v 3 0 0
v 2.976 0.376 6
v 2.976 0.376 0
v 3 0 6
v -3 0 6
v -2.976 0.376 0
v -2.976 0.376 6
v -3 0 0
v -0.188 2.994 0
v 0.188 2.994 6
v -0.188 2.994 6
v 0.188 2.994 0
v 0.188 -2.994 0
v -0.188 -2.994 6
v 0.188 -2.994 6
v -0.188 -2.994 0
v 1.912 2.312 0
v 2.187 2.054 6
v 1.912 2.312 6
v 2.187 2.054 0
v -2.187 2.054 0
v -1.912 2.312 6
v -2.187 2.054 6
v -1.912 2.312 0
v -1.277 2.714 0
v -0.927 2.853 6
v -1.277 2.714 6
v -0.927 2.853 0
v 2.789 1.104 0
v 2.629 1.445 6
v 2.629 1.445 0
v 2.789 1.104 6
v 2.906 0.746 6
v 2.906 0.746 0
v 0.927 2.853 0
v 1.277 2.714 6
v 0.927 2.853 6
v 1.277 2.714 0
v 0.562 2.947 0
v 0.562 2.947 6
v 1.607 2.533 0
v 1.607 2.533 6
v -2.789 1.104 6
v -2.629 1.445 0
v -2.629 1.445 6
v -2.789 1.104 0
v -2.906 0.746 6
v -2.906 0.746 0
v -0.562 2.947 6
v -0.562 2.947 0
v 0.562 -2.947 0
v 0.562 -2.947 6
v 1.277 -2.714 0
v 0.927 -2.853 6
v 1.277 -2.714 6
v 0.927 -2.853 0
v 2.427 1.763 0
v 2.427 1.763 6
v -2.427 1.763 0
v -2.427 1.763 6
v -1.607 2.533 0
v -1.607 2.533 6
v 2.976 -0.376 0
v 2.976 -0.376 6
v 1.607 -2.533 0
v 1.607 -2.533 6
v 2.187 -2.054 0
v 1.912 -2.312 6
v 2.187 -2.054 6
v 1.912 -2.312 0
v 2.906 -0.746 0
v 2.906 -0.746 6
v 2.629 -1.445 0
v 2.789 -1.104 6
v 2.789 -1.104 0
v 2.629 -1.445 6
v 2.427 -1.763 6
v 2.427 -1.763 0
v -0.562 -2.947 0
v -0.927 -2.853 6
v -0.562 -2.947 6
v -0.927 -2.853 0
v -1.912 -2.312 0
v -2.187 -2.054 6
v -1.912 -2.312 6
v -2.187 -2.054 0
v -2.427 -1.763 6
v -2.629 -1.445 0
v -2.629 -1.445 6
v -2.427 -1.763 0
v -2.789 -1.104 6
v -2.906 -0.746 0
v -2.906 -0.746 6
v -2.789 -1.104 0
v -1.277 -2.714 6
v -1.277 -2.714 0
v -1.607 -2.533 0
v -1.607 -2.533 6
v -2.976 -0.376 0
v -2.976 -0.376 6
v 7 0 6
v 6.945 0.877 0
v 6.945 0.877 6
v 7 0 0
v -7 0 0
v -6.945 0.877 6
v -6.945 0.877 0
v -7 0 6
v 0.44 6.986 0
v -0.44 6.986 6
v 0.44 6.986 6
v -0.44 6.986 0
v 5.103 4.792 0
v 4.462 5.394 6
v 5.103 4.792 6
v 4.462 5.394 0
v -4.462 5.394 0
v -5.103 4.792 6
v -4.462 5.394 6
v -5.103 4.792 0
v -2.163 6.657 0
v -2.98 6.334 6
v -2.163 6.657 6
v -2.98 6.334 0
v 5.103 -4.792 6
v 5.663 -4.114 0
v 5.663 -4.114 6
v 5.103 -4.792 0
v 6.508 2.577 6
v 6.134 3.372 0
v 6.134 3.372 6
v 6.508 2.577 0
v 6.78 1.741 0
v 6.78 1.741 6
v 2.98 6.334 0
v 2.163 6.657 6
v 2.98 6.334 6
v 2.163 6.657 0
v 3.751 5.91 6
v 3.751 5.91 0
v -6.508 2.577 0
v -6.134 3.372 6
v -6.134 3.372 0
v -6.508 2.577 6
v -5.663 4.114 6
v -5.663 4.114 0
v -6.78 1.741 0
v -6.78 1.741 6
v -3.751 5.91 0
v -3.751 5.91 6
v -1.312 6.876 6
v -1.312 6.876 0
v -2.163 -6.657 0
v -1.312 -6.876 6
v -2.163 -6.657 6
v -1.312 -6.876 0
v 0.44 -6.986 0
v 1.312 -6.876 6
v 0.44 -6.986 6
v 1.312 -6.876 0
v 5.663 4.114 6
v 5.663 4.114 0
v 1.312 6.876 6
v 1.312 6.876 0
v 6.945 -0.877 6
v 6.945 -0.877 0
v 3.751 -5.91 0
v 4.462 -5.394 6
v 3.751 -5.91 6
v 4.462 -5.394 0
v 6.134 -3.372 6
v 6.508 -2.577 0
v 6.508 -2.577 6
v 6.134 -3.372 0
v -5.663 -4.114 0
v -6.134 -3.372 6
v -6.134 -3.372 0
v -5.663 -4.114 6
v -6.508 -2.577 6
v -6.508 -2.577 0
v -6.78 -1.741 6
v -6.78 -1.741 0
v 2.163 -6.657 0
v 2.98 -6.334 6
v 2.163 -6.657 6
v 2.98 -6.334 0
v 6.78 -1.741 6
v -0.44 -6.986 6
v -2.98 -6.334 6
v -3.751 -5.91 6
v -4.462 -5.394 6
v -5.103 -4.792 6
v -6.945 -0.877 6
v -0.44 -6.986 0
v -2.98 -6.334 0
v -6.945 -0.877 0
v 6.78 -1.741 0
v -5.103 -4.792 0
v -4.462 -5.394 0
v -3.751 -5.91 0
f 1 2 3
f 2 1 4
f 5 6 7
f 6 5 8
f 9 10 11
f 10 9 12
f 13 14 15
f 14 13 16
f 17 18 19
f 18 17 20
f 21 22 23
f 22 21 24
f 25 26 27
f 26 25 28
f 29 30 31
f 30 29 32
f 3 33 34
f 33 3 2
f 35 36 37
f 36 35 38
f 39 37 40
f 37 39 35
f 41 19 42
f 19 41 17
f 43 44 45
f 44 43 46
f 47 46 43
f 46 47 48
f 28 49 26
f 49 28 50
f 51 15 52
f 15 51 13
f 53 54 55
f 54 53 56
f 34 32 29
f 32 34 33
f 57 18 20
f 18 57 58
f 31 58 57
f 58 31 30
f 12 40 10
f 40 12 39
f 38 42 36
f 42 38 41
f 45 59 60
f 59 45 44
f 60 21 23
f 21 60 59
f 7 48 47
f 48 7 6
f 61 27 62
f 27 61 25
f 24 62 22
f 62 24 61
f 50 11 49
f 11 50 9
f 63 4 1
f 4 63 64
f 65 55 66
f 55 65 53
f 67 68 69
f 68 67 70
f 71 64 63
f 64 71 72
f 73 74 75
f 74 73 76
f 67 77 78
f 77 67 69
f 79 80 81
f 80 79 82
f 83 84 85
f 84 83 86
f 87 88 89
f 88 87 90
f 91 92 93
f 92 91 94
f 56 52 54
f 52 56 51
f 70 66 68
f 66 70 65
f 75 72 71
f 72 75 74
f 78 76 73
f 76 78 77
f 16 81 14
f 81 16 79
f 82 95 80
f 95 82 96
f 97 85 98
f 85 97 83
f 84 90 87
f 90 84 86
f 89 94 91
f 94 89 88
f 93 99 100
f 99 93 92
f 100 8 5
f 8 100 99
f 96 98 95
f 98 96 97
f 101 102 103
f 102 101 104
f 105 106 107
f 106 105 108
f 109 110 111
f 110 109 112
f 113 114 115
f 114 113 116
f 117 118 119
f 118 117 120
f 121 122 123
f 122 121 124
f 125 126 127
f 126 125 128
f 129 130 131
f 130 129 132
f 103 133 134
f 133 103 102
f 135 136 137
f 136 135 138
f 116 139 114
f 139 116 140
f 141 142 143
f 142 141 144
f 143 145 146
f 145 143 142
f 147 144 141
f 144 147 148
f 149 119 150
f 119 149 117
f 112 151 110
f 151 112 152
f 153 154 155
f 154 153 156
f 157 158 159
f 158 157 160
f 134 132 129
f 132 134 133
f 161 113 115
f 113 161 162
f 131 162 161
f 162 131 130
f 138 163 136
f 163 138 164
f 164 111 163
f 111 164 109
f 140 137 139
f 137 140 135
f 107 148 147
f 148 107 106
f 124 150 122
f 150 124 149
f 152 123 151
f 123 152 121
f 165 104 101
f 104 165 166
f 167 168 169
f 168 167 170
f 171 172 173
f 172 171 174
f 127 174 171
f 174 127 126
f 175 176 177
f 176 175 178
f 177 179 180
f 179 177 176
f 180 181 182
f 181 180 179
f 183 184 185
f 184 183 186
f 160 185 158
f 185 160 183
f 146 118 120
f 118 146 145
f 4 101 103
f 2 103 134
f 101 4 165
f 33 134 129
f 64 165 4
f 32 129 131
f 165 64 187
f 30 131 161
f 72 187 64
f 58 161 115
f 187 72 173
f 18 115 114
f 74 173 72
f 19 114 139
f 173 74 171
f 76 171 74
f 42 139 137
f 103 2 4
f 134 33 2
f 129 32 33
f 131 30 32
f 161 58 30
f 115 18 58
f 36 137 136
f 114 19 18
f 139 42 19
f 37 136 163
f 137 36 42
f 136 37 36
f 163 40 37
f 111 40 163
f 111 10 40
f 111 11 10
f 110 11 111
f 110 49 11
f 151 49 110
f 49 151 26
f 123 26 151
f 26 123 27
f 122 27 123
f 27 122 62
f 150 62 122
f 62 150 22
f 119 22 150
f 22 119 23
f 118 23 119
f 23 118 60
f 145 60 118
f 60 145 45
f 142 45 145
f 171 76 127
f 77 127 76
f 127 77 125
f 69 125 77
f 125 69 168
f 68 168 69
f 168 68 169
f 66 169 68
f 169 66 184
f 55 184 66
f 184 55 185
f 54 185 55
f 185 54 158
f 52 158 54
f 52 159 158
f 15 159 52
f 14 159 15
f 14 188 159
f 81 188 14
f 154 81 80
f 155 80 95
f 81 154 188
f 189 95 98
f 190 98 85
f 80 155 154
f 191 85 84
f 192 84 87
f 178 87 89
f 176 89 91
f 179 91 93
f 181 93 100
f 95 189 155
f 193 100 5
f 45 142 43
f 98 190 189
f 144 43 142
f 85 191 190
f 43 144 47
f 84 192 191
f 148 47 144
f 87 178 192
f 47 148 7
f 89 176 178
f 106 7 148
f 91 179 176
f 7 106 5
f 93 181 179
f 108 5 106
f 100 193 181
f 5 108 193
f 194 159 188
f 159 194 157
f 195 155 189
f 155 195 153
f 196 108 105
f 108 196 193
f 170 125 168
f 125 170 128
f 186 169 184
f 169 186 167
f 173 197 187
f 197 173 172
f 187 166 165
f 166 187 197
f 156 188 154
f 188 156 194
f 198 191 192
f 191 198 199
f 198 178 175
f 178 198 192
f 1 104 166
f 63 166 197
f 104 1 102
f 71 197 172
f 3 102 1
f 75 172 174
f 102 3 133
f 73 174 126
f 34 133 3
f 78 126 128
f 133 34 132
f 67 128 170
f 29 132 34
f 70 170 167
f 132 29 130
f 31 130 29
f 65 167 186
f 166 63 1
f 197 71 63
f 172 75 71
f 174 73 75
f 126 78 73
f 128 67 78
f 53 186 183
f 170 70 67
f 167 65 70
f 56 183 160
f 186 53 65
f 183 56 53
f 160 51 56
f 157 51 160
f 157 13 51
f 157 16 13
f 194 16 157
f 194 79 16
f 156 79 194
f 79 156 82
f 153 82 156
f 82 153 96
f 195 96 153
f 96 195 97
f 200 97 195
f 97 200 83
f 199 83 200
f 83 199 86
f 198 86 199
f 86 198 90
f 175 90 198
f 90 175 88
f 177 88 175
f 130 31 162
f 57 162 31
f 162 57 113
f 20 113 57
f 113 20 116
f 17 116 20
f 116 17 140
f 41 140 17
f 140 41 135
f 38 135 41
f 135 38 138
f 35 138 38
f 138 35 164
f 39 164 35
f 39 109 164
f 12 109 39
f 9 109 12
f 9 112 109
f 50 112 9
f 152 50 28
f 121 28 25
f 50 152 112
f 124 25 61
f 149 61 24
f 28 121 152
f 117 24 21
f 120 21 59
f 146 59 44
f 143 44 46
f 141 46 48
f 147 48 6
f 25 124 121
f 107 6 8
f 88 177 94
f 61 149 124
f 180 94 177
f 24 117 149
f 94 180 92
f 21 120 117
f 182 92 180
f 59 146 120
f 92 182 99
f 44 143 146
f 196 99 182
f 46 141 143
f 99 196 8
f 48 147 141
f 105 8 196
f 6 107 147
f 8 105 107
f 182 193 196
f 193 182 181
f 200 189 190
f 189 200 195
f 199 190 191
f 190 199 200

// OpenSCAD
$fn = 50;


difference() {
	union() {
		cylinder(h = 6, r = 7.0000000000);
	}
	union() {
		translate(v = [0.0000000000, 0.0000000000, -100.0000000000]) {
			cylinder(h = 200, r = 3.0000000000);
		}
		cylinder(h = 6, r = 1.5000000000);
		cylinder(h = 6, r = 1.5000000000);
		cylinder(h = 6, r = 1.5000000000);
	}
}
